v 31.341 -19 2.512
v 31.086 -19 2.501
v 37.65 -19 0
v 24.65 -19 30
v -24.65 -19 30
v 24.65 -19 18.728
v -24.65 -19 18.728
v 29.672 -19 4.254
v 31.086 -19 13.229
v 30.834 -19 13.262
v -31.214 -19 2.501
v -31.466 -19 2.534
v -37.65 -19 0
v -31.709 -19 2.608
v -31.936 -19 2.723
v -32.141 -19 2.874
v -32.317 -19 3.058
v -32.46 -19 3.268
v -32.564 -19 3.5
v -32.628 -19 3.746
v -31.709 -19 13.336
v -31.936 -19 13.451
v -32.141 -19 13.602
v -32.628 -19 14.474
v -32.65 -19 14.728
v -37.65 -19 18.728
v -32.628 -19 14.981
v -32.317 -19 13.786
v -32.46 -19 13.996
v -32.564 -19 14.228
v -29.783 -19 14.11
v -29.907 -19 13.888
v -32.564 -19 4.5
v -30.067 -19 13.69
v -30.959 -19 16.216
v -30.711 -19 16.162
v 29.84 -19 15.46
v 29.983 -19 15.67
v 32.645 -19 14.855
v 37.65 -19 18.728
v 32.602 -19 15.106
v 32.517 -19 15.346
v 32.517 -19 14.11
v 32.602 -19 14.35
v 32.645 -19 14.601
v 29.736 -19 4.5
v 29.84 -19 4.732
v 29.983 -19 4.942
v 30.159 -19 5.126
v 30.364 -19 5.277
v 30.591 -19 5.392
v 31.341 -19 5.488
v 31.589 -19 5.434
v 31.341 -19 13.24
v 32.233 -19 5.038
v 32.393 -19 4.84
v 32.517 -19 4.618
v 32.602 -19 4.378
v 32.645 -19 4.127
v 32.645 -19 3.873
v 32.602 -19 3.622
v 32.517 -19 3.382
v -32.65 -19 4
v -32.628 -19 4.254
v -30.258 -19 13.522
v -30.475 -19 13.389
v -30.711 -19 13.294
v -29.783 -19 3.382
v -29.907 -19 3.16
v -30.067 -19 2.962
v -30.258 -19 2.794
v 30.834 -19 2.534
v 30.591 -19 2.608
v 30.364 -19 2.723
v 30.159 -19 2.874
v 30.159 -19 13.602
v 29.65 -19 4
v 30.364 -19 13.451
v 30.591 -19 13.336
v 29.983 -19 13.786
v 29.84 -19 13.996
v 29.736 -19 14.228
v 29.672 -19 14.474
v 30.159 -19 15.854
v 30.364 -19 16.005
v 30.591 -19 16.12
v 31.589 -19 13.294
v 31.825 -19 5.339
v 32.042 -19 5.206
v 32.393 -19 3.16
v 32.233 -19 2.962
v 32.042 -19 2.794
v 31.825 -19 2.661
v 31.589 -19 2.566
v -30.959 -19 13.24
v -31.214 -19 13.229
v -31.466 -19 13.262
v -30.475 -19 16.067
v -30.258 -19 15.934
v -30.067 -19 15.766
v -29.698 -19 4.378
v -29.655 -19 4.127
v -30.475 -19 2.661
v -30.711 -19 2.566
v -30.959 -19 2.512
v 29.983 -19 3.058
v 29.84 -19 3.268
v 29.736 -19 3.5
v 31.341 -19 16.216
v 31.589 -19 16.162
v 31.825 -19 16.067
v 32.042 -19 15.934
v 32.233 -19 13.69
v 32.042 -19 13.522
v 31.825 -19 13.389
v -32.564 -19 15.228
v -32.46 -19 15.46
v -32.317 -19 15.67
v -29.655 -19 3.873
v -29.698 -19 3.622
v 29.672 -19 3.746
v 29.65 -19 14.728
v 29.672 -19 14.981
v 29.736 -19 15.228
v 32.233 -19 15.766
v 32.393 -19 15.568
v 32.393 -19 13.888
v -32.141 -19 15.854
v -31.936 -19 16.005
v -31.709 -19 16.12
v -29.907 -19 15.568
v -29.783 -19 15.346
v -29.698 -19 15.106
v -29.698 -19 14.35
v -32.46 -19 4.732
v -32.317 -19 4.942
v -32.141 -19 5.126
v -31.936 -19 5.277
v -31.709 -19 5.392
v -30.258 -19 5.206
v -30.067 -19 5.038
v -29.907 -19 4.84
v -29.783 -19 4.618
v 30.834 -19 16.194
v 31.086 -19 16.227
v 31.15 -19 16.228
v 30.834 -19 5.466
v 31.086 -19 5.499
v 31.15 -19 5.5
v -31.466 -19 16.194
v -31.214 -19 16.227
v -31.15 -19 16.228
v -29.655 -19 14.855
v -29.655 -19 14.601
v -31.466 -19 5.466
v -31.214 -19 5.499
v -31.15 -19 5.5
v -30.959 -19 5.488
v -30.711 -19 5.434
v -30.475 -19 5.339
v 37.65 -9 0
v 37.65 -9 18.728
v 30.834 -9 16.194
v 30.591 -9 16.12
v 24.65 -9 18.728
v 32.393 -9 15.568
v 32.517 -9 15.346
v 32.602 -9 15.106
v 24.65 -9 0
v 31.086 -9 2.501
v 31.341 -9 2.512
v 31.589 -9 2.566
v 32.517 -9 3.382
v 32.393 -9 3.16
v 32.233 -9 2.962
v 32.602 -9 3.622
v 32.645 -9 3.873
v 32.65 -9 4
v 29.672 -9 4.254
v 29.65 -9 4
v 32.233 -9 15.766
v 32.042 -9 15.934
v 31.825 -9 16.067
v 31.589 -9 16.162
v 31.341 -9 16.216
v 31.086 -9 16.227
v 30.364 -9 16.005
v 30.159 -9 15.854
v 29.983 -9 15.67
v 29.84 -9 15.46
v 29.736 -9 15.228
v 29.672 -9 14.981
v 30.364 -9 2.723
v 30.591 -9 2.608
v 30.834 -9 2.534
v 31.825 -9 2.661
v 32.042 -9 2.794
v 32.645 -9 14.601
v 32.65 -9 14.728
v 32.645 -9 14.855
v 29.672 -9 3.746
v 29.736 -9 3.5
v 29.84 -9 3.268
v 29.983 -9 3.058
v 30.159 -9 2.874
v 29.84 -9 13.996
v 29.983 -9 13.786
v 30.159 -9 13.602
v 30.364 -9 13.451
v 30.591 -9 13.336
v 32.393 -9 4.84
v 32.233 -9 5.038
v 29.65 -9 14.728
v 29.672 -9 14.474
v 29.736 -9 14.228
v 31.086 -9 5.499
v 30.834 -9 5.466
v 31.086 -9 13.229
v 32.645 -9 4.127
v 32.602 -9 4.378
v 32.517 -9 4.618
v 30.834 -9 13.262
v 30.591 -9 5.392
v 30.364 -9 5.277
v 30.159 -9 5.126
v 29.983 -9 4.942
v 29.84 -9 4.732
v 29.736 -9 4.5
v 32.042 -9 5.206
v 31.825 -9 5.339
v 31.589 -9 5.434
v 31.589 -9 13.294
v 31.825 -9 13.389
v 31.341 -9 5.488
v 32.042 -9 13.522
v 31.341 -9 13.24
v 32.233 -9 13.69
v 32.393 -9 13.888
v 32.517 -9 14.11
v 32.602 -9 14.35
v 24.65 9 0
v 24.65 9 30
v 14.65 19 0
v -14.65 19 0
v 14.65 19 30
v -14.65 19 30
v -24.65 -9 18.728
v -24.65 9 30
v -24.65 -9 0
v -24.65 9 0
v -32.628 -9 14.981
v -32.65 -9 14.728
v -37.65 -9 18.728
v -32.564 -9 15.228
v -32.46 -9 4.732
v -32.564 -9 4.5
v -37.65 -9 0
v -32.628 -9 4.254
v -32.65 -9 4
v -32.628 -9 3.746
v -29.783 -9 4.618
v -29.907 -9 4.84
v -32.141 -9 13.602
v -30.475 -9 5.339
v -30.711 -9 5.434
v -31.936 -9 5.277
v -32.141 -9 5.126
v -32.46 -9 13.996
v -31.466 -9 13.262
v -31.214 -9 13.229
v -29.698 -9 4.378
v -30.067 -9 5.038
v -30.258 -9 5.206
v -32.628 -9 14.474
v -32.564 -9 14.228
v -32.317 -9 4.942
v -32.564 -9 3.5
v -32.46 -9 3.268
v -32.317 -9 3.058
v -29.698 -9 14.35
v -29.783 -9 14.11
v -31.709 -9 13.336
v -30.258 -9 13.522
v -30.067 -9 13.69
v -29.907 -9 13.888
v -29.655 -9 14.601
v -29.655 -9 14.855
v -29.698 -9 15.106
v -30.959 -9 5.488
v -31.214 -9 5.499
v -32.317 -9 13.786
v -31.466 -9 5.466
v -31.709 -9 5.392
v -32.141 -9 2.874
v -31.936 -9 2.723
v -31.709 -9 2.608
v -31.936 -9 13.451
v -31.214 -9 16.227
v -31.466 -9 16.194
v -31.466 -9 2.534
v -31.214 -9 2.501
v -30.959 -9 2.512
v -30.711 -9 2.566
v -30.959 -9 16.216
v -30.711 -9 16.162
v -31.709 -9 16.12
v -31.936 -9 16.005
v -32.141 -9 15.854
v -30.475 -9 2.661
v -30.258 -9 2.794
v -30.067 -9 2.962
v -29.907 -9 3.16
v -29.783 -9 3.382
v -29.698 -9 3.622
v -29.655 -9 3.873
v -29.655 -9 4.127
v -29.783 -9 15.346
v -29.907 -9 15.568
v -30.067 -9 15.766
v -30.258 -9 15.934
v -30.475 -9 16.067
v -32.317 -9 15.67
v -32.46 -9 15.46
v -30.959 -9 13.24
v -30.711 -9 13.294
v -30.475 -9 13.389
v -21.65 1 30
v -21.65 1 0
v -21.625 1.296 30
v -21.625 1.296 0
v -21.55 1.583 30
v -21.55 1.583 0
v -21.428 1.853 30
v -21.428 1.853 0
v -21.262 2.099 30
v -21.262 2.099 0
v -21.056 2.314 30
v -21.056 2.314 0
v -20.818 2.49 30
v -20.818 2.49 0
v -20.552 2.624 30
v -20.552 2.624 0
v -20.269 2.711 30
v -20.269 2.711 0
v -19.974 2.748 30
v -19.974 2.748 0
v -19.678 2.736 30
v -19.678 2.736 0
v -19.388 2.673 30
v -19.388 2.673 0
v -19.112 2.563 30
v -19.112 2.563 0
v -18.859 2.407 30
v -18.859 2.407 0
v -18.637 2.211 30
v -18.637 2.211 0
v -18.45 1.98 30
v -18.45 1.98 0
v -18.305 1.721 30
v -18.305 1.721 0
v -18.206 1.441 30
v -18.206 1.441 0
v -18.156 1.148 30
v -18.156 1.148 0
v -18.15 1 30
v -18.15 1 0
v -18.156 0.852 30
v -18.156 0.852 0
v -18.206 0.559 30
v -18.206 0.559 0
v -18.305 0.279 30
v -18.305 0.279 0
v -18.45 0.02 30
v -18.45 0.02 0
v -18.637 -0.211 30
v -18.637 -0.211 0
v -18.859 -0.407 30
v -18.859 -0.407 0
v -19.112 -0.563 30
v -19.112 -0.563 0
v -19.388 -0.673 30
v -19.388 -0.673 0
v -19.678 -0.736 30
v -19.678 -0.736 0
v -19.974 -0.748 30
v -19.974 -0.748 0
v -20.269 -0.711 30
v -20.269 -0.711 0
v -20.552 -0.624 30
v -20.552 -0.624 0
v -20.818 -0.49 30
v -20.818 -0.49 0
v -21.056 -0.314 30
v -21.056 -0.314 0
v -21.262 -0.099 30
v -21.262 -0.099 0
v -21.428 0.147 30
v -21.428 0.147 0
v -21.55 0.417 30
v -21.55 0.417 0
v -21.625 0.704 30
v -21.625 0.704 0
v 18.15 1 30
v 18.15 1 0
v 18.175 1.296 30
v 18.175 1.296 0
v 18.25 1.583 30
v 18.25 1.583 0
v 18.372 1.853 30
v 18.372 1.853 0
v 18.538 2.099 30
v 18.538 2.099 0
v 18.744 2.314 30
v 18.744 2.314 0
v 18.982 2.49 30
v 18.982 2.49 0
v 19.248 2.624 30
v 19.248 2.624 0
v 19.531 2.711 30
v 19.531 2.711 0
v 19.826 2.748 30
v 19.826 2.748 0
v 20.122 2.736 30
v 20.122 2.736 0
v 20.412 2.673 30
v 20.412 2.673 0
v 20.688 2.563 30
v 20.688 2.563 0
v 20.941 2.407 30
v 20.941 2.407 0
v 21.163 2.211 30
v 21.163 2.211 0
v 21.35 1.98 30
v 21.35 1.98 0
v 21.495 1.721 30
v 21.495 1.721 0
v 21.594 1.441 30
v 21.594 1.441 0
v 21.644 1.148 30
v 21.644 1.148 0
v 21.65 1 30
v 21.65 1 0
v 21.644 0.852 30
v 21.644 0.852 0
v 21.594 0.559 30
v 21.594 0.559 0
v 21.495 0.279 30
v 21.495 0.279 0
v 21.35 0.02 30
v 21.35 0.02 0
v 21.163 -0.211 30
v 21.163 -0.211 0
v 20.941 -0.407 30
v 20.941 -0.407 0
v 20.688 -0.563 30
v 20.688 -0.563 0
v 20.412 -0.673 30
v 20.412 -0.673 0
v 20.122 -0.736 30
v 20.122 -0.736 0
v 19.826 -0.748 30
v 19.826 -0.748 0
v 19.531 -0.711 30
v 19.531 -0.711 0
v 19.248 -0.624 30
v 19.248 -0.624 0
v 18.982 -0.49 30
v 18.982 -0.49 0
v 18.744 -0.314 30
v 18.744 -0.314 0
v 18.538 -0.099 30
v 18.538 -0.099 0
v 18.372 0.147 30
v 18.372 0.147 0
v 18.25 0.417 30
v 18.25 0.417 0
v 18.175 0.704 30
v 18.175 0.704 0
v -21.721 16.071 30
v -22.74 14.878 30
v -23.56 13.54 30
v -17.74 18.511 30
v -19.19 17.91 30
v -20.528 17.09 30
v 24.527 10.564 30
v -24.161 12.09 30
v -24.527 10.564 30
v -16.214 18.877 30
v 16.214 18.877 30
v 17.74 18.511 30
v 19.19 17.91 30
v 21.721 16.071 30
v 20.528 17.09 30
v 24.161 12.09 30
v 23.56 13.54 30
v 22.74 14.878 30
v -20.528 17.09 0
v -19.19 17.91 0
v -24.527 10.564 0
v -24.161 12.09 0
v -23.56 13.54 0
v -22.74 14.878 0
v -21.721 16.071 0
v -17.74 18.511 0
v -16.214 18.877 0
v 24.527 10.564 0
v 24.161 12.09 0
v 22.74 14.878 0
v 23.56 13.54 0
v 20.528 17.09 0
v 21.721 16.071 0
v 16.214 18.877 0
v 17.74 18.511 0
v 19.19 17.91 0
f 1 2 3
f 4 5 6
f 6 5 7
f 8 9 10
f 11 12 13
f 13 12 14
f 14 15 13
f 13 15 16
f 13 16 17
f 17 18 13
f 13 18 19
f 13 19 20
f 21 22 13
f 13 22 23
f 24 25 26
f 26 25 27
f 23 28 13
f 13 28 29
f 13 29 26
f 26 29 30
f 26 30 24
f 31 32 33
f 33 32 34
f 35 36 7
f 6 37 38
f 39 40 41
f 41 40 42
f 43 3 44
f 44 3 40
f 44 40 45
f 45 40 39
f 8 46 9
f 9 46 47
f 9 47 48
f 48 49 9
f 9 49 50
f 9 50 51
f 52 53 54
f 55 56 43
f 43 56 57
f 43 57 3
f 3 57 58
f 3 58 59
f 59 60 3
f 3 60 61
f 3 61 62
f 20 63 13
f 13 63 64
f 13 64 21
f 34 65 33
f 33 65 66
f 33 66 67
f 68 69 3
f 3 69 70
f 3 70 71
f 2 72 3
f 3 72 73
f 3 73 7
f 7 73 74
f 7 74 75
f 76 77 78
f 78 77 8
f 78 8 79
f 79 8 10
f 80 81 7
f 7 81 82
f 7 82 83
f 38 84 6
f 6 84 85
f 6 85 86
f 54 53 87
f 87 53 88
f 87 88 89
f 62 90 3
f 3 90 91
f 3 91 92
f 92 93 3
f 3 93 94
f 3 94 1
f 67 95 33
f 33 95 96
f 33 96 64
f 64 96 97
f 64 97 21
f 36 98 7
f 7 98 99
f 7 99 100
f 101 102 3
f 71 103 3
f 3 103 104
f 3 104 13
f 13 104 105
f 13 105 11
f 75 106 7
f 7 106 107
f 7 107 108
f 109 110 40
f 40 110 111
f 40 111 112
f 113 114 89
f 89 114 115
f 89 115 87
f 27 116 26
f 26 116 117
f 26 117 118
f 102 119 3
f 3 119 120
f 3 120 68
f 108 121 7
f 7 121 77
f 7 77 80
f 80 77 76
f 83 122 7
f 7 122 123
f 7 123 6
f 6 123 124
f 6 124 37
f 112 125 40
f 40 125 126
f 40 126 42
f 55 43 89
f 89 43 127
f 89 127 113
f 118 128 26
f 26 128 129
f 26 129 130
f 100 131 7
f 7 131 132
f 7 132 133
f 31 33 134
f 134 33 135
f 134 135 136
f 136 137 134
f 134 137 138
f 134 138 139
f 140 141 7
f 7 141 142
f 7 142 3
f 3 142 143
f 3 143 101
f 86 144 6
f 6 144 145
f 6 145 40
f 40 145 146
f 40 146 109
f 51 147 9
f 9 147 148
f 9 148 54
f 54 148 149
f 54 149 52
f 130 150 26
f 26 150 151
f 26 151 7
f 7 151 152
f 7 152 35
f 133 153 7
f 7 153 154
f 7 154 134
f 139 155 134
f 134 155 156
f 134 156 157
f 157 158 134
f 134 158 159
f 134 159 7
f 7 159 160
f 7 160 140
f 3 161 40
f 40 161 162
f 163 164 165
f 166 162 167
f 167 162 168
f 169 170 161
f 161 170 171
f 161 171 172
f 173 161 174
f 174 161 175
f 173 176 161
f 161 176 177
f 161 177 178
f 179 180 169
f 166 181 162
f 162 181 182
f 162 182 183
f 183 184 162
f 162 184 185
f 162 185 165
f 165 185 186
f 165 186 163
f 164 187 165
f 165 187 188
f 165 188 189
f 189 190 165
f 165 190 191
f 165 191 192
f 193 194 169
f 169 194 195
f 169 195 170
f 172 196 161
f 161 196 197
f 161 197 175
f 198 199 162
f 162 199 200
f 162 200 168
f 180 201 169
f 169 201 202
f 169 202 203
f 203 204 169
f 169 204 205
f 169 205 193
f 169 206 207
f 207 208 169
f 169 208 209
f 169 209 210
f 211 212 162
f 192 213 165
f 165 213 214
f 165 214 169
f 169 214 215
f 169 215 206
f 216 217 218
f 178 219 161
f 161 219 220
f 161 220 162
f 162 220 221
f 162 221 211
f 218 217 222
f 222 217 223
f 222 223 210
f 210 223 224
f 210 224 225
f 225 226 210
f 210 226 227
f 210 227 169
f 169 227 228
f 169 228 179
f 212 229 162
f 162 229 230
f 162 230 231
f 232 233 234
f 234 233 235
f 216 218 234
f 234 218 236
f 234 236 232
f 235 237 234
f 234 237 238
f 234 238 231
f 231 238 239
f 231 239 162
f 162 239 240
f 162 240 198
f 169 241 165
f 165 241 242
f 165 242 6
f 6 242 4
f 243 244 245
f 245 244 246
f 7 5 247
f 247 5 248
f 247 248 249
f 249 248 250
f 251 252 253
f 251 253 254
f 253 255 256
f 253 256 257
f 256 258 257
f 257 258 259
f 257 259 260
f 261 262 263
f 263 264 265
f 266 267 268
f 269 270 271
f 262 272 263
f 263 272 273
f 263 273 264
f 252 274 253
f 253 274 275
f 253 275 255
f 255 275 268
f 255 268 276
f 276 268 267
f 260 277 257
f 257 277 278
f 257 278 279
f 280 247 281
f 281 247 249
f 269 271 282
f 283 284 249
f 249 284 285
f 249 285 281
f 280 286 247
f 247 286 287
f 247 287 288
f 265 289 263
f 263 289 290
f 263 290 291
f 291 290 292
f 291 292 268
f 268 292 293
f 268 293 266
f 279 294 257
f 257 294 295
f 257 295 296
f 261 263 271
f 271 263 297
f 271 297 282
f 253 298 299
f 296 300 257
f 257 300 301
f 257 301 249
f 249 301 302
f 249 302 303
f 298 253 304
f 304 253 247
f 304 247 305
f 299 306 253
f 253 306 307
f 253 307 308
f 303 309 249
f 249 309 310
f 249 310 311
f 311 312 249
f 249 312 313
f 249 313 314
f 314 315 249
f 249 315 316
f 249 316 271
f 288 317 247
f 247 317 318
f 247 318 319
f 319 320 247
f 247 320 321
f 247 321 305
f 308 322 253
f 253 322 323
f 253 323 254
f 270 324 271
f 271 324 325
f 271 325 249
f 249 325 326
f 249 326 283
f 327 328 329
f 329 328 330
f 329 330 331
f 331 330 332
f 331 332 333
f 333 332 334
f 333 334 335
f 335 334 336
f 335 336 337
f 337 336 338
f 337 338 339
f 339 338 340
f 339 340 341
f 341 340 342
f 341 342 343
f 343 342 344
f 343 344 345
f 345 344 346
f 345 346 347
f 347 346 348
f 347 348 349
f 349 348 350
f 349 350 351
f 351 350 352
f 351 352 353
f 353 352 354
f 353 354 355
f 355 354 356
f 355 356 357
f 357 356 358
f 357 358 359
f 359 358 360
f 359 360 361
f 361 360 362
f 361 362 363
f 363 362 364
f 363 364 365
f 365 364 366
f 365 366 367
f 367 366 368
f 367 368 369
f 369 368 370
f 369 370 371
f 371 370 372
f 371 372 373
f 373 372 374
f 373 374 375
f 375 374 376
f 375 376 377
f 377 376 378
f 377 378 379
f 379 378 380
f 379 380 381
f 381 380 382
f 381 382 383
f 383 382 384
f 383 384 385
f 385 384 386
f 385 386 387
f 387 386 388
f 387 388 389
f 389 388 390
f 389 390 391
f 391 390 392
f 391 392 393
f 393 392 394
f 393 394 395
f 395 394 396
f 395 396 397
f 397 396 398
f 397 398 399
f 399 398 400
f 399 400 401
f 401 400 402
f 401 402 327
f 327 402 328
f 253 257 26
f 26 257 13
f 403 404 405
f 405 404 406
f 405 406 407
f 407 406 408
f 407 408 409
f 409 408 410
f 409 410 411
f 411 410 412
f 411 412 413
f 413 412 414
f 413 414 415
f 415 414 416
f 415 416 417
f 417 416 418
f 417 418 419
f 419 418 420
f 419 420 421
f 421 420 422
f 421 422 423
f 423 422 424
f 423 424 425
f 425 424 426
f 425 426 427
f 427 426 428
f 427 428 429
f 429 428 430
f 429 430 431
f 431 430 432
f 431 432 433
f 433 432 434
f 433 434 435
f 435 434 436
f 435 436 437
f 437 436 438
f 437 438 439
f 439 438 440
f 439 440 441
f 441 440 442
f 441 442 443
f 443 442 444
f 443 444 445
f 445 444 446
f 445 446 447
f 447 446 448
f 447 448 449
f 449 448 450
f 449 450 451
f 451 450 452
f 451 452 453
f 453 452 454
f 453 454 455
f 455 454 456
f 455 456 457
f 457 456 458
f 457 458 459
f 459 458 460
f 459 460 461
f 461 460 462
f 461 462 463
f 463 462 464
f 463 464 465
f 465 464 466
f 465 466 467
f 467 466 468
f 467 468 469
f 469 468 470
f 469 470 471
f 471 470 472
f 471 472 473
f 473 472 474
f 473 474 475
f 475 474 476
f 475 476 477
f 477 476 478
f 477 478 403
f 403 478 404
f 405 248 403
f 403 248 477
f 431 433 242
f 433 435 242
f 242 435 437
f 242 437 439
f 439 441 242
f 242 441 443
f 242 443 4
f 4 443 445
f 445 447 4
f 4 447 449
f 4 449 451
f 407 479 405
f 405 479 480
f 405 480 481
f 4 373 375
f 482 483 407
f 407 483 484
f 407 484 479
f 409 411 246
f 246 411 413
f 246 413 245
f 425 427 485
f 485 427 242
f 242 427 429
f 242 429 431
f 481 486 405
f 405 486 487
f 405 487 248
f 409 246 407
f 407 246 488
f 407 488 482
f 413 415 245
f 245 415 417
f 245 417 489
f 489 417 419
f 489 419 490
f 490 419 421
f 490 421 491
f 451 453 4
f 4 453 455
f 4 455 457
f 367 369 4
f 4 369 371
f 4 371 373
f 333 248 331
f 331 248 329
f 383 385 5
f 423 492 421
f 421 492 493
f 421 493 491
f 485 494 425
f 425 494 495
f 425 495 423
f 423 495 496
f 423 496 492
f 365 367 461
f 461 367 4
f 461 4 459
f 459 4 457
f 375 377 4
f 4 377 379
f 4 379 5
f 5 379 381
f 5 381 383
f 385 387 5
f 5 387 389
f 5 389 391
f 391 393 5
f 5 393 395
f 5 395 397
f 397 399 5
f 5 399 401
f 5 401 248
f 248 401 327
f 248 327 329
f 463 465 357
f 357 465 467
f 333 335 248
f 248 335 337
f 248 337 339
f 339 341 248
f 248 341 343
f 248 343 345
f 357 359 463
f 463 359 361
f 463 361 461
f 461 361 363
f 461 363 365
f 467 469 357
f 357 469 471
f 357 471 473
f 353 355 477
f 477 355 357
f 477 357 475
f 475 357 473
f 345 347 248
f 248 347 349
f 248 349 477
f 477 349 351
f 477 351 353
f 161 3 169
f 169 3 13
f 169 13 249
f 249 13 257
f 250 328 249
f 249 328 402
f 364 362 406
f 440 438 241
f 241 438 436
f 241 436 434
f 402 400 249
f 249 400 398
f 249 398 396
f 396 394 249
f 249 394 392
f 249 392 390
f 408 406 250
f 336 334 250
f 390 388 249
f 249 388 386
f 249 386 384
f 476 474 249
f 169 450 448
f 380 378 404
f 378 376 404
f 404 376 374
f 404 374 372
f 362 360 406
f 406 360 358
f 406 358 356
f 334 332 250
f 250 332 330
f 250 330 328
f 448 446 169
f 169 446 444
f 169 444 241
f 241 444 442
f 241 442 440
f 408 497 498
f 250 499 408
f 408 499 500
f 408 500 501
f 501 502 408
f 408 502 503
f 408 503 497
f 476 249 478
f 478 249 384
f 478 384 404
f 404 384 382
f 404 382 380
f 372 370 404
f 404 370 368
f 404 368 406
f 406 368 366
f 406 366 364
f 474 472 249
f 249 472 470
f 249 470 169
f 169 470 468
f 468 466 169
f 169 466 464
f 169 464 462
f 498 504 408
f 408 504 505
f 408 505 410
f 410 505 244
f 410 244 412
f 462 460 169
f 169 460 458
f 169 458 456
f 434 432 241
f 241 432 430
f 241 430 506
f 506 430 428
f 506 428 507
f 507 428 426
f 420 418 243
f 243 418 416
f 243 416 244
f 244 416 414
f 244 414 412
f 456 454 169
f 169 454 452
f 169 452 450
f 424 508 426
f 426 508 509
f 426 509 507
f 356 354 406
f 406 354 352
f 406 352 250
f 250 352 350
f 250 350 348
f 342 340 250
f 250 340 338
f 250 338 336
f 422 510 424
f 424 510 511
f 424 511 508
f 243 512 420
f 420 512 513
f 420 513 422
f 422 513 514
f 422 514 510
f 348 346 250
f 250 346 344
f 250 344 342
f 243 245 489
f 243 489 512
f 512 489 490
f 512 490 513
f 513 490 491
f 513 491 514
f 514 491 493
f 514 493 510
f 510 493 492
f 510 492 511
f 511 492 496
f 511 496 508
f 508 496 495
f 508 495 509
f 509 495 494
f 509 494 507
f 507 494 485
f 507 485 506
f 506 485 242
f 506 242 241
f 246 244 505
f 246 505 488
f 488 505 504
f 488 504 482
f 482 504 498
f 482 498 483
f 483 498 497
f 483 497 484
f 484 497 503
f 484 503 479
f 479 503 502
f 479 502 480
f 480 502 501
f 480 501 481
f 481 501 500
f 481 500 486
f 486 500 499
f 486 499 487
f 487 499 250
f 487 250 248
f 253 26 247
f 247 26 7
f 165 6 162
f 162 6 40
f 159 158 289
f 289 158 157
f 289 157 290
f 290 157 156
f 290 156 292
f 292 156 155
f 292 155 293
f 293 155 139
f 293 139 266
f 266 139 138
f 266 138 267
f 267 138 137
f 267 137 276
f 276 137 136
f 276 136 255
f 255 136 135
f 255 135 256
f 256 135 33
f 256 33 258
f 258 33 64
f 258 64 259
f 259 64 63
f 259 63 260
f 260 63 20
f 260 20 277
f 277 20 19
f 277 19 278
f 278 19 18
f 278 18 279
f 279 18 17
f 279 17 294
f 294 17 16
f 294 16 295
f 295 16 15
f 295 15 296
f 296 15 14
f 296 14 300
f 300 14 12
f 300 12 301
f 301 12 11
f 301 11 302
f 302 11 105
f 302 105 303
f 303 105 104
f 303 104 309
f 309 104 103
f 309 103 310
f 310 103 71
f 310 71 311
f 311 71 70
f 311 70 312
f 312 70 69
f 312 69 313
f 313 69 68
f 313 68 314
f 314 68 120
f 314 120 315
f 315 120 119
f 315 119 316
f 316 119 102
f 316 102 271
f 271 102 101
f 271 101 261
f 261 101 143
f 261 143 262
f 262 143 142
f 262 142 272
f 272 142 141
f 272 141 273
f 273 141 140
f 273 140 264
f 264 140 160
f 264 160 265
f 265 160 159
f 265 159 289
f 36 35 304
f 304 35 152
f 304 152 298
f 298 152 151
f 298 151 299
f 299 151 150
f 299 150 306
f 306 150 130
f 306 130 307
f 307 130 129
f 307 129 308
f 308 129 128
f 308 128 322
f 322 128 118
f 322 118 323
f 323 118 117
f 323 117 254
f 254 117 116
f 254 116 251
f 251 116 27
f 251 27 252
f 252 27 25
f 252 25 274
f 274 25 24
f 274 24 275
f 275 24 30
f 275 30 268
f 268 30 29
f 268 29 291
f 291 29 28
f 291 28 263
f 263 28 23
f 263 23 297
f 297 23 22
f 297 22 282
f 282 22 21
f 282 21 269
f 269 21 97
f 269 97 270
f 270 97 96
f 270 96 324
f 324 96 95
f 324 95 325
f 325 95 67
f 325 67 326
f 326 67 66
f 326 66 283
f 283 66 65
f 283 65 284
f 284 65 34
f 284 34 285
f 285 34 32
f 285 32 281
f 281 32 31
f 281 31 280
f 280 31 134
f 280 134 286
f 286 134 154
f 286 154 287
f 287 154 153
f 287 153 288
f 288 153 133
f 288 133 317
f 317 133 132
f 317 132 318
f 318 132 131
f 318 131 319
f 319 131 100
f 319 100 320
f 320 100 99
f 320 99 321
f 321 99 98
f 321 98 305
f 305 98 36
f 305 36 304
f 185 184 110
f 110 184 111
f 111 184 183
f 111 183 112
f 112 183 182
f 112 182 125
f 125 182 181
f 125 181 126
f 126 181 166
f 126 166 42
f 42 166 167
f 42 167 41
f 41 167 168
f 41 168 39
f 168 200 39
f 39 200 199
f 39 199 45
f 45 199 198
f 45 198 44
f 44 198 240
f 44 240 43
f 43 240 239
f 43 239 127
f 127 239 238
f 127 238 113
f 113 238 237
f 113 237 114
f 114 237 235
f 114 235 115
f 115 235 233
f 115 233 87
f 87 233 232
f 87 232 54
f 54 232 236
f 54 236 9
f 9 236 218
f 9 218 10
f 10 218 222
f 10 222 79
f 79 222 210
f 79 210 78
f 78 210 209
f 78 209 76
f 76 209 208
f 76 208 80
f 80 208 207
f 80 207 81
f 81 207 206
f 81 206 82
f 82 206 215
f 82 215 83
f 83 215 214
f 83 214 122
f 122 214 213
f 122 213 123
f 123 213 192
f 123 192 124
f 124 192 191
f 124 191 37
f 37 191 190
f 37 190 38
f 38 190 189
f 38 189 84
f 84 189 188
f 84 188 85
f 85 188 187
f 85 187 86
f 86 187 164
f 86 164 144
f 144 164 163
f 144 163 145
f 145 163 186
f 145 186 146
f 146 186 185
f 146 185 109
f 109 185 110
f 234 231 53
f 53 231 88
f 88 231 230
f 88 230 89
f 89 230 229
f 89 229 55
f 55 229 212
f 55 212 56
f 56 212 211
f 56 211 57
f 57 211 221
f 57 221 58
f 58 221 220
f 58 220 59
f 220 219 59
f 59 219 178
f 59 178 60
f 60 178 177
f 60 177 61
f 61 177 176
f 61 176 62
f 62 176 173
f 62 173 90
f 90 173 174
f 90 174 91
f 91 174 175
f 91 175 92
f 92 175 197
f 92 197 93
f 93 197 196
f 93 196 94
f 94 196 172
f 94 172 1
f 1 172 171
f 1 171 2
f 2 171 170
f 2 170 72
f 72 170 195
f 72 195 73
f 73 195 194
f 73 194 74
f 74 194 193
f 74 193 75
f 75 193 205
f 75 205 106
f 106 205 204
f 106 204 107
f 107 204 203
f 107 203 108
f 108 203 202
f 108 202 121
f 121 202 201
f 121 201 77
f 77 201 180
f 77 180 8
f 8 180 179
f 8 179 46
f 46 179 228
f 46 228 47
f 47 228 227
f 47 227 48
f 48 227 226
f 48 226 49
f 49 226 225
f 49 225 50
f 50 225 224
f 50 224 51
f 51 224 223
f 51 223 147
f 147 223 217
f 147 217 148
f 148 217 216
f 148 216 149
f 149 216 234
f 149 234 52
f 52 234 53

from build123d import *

# Parameters (mm, degrees)
SKETCH_2_W          = 49.3
SKETCH_2_H          = 38
SKETCH_2_R          = 1.75
SKETCH_2_W_2        = 13
SKETCH_2_H_2        = 10
EXTRUDE_1_DEPTH     = 30
FILLET_2_R          = 10
SKETCH_5_R          = 1.5
SKETCH_5_W          = 13
SKETCH_5_H          = 11.272014512
CUT_EXTRUDE_2_DEPTH = 20


with BuildPart() as part:
    # Эскиз2 → Бобышка-Вытянуть1 (new body)
    # profile 1 of 3: a face of its own
    with BuildSketch(Plane.XY):
        Rectangle(SKETCH_2_W, SKETCH_2_H)
        with Locations((-19.9, 1)):
            Circle(SKETCH_2_R, mode=Mode.SUBTRACT)
        with Locations((19.9, 1)):
            Circle(SKETCH_2_R, mode=Mode.SUBTRACT)
    # profile 2 of 3: a face of its own
    with BuildSketch(Plane.XY):
        with Locations((-31.15, -14)):
            Rectangle(SKETCH_2_W_2, SKETCH_2_H_2)
    # profile 3 of 3: a face of its own
    with BuildSketch(Plane.XY):
        with Locations((31.15, -14)):
            Rectangle(SKETCH_2_W_2, SKETCH_2_H_2)
    extrude(amount=EXTRUDE_1_DEPTH)

    # Скругление2
    fillet_2_edges = [part.edges().sort_by_distance(p)[0] for p in [
        (-24.65, 19, 15),
        (24.65, 19, 15),
    ]]
    fillet(fillet_2_edges, radius=FILLET_2_R)

    # Эскиз5 → Вырез-Вытянуть2 (cut)
    with BuildSketch(Plane(origin=(0, -9, 0), x_dir=(1, 0, 0), z_dir=(0, 1, 0))):
        with Locations(Location((-31.15, -4, 0), (0, 0, 180))):
            Circle(SKETCH_5_R)
        with Locations(Location((-31.15, -14.727985488, 0), (0, 0, 180))):
            Circle(SKETCH_5_R)
        with Locations(Location((31.15, -14.727985488, 0), (0, 0, 270))):
            Circle(SKETCH_5_R)
        with Locations(Location((31.15, -4, 0), (0, 0, 270))):
            Circle(SKETCH_5_R)
        with Locations((-31.15, -24.363992744)):
            Rectangle(SKETCH_5_W, SKETCH_5_H)
        with Locations((31.15, -24.363992744)):
            Rectangle(SKETCH_5_W, SKETCH_5_H)
    extrude(amount=-CUT_EXTRUDE_2_DEPTH, mode=Mode.SUBTRACT)


solid = part.part
